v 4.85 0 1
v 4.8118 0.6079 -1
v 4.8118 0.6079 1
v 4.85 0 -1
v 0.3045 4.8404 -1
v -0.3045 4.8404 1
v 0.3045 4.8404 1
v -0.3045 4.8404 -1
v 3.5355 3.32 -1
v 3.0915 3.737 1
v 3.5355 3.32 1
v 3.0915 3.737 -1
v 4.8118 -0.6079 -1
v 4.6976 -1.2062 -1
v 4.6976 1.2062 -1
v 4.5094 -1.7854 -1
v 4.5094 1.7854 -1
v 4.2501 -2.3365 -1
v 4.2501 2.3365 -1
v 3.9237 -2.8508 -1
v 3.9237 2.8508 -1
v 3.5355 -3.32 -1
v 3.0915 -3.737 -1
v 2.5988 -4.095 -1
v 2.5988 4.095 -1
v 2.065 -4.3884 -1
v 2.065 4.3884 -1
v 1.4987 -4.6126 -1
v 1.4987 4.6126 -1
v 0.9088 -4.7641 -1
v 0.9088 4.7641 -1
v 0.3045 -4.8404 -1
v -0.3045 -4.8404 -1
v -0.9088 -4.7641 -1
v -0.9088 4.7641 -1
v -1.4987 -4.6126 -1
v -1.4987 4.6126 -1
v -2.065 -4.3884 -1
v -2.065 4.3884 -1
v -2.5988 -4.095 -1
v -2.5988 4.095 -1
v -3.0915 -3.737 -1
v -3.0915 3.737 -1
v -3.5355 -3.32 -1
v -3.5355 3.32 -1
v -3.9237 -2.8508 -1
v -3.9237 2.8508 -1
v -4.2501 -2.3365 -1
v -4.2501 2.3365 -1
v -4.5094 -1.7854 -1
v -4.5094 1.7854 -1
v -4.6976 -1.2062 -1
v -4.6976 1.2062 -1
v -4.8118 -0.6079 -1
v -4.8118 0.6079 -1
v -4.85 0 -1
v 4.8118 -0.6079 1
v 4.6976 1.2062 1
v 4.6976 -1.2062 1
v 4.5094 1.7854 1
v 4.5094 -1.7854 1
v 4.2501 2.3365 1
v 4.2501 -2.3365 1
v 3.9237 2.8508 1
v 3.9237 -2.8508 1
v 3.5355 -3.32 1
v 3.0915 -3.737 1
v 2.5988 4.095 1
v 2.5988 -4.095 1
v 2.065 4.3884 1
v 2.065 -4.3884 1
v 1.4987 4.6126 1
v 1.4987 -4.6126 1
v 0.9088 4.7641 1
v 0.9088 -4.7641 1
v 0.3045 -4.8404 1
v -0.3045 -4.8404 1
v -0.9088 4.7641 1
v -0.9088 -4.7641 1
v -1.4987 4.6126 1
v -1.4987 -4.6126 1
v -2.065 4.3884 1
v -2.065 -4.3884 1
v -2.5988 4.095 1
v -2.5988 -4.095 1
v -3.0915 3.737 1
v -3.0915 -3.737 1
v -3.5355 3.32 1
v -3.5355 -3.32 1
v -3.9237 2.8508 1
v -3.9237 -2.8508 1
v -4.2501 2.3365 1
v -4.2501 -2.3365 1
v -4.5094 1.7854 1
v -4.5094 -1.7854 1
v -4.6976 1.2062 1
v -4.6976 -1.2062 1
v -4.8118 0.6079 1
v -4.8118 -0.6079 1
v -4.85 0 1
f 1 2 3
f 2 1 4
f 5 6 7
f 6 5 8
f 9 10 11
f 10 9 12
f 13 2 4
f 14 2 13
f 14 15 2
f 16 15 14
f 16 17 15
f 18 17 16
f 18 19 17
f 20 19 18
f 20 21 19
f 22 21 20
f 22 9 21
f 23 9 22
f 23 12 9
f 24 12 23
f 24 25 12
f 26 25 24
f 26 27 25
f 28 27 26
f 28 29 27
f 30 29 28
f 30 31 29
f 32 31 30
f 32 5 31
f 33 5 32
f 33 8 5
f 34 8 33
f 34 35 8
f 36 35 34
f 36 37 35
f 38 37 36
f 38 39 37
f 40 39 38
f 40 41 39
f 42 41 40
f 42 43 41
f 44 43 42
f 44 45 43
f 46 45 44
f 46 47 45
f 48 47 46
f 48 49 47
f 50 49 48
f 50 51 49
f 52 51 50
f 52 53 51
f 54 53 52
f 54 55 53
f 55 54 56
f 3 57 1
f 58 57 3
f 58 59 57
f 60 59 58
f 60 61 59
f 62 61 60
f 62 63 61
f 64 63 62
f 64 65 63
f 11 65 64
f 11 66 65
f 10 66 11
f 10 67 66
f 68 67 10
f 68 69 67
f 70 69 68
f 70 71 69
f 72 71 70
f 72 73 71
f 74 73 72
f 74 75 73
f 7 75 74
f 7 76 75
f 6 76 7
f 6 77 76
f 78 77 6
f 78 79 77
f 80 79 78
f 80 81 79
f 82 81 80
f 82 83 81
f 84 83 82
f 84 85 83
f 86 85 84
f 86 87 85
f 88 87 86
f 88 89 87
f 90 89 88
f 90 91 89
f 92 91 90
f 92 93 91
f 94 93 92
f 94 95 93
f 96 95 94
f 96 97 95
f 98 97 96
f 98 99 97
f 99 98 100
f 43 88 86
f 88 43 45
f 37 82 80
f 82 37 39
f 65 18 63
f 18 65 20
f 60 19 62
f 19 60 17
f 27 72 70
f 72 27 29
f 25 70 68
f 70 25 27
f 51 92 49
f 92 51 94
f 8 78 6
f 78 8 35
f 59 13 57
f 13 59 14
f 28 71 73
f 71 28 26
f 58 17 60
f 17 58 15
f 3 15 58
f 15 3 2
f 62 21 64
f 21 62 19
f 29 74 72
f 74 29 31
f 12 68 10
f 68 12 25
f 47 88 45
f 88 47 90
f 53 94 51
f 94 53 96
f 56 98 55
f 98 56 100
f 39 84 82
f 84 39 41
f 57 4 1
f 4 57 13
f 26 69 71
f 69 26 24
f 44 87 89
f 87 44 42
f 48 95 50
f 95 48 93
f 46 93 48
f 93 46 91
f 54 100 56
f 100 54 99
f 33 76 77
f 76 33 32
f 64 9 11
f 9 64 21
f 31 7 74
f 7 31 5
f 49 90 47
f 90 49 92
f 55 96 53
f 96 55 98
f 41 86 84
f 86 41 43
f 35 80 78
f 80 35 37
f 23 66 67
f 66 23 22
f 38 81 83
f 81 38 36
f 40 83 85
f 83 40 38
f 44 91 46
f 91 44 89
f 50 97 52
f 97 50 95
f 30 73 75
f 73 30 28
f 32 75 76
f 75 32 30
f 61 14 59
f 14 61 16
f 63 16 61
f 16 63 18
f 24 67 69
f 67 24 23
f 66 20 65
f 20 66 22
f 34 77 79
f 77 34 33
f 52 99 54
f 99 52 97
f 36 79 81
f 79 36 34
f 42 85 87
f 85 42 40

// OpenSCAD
$fn = 50;


difference() {
	union() {
		translate(v = [0, 0, -1.0000000000]) {
			cylinder(h = 2, r = 4.8500000000);
		}
	}
	union() {
		translate(v = [0, 0, -100.0000000000]) {
			cylinder(h = 200, r = 0);
		}
	}
}
